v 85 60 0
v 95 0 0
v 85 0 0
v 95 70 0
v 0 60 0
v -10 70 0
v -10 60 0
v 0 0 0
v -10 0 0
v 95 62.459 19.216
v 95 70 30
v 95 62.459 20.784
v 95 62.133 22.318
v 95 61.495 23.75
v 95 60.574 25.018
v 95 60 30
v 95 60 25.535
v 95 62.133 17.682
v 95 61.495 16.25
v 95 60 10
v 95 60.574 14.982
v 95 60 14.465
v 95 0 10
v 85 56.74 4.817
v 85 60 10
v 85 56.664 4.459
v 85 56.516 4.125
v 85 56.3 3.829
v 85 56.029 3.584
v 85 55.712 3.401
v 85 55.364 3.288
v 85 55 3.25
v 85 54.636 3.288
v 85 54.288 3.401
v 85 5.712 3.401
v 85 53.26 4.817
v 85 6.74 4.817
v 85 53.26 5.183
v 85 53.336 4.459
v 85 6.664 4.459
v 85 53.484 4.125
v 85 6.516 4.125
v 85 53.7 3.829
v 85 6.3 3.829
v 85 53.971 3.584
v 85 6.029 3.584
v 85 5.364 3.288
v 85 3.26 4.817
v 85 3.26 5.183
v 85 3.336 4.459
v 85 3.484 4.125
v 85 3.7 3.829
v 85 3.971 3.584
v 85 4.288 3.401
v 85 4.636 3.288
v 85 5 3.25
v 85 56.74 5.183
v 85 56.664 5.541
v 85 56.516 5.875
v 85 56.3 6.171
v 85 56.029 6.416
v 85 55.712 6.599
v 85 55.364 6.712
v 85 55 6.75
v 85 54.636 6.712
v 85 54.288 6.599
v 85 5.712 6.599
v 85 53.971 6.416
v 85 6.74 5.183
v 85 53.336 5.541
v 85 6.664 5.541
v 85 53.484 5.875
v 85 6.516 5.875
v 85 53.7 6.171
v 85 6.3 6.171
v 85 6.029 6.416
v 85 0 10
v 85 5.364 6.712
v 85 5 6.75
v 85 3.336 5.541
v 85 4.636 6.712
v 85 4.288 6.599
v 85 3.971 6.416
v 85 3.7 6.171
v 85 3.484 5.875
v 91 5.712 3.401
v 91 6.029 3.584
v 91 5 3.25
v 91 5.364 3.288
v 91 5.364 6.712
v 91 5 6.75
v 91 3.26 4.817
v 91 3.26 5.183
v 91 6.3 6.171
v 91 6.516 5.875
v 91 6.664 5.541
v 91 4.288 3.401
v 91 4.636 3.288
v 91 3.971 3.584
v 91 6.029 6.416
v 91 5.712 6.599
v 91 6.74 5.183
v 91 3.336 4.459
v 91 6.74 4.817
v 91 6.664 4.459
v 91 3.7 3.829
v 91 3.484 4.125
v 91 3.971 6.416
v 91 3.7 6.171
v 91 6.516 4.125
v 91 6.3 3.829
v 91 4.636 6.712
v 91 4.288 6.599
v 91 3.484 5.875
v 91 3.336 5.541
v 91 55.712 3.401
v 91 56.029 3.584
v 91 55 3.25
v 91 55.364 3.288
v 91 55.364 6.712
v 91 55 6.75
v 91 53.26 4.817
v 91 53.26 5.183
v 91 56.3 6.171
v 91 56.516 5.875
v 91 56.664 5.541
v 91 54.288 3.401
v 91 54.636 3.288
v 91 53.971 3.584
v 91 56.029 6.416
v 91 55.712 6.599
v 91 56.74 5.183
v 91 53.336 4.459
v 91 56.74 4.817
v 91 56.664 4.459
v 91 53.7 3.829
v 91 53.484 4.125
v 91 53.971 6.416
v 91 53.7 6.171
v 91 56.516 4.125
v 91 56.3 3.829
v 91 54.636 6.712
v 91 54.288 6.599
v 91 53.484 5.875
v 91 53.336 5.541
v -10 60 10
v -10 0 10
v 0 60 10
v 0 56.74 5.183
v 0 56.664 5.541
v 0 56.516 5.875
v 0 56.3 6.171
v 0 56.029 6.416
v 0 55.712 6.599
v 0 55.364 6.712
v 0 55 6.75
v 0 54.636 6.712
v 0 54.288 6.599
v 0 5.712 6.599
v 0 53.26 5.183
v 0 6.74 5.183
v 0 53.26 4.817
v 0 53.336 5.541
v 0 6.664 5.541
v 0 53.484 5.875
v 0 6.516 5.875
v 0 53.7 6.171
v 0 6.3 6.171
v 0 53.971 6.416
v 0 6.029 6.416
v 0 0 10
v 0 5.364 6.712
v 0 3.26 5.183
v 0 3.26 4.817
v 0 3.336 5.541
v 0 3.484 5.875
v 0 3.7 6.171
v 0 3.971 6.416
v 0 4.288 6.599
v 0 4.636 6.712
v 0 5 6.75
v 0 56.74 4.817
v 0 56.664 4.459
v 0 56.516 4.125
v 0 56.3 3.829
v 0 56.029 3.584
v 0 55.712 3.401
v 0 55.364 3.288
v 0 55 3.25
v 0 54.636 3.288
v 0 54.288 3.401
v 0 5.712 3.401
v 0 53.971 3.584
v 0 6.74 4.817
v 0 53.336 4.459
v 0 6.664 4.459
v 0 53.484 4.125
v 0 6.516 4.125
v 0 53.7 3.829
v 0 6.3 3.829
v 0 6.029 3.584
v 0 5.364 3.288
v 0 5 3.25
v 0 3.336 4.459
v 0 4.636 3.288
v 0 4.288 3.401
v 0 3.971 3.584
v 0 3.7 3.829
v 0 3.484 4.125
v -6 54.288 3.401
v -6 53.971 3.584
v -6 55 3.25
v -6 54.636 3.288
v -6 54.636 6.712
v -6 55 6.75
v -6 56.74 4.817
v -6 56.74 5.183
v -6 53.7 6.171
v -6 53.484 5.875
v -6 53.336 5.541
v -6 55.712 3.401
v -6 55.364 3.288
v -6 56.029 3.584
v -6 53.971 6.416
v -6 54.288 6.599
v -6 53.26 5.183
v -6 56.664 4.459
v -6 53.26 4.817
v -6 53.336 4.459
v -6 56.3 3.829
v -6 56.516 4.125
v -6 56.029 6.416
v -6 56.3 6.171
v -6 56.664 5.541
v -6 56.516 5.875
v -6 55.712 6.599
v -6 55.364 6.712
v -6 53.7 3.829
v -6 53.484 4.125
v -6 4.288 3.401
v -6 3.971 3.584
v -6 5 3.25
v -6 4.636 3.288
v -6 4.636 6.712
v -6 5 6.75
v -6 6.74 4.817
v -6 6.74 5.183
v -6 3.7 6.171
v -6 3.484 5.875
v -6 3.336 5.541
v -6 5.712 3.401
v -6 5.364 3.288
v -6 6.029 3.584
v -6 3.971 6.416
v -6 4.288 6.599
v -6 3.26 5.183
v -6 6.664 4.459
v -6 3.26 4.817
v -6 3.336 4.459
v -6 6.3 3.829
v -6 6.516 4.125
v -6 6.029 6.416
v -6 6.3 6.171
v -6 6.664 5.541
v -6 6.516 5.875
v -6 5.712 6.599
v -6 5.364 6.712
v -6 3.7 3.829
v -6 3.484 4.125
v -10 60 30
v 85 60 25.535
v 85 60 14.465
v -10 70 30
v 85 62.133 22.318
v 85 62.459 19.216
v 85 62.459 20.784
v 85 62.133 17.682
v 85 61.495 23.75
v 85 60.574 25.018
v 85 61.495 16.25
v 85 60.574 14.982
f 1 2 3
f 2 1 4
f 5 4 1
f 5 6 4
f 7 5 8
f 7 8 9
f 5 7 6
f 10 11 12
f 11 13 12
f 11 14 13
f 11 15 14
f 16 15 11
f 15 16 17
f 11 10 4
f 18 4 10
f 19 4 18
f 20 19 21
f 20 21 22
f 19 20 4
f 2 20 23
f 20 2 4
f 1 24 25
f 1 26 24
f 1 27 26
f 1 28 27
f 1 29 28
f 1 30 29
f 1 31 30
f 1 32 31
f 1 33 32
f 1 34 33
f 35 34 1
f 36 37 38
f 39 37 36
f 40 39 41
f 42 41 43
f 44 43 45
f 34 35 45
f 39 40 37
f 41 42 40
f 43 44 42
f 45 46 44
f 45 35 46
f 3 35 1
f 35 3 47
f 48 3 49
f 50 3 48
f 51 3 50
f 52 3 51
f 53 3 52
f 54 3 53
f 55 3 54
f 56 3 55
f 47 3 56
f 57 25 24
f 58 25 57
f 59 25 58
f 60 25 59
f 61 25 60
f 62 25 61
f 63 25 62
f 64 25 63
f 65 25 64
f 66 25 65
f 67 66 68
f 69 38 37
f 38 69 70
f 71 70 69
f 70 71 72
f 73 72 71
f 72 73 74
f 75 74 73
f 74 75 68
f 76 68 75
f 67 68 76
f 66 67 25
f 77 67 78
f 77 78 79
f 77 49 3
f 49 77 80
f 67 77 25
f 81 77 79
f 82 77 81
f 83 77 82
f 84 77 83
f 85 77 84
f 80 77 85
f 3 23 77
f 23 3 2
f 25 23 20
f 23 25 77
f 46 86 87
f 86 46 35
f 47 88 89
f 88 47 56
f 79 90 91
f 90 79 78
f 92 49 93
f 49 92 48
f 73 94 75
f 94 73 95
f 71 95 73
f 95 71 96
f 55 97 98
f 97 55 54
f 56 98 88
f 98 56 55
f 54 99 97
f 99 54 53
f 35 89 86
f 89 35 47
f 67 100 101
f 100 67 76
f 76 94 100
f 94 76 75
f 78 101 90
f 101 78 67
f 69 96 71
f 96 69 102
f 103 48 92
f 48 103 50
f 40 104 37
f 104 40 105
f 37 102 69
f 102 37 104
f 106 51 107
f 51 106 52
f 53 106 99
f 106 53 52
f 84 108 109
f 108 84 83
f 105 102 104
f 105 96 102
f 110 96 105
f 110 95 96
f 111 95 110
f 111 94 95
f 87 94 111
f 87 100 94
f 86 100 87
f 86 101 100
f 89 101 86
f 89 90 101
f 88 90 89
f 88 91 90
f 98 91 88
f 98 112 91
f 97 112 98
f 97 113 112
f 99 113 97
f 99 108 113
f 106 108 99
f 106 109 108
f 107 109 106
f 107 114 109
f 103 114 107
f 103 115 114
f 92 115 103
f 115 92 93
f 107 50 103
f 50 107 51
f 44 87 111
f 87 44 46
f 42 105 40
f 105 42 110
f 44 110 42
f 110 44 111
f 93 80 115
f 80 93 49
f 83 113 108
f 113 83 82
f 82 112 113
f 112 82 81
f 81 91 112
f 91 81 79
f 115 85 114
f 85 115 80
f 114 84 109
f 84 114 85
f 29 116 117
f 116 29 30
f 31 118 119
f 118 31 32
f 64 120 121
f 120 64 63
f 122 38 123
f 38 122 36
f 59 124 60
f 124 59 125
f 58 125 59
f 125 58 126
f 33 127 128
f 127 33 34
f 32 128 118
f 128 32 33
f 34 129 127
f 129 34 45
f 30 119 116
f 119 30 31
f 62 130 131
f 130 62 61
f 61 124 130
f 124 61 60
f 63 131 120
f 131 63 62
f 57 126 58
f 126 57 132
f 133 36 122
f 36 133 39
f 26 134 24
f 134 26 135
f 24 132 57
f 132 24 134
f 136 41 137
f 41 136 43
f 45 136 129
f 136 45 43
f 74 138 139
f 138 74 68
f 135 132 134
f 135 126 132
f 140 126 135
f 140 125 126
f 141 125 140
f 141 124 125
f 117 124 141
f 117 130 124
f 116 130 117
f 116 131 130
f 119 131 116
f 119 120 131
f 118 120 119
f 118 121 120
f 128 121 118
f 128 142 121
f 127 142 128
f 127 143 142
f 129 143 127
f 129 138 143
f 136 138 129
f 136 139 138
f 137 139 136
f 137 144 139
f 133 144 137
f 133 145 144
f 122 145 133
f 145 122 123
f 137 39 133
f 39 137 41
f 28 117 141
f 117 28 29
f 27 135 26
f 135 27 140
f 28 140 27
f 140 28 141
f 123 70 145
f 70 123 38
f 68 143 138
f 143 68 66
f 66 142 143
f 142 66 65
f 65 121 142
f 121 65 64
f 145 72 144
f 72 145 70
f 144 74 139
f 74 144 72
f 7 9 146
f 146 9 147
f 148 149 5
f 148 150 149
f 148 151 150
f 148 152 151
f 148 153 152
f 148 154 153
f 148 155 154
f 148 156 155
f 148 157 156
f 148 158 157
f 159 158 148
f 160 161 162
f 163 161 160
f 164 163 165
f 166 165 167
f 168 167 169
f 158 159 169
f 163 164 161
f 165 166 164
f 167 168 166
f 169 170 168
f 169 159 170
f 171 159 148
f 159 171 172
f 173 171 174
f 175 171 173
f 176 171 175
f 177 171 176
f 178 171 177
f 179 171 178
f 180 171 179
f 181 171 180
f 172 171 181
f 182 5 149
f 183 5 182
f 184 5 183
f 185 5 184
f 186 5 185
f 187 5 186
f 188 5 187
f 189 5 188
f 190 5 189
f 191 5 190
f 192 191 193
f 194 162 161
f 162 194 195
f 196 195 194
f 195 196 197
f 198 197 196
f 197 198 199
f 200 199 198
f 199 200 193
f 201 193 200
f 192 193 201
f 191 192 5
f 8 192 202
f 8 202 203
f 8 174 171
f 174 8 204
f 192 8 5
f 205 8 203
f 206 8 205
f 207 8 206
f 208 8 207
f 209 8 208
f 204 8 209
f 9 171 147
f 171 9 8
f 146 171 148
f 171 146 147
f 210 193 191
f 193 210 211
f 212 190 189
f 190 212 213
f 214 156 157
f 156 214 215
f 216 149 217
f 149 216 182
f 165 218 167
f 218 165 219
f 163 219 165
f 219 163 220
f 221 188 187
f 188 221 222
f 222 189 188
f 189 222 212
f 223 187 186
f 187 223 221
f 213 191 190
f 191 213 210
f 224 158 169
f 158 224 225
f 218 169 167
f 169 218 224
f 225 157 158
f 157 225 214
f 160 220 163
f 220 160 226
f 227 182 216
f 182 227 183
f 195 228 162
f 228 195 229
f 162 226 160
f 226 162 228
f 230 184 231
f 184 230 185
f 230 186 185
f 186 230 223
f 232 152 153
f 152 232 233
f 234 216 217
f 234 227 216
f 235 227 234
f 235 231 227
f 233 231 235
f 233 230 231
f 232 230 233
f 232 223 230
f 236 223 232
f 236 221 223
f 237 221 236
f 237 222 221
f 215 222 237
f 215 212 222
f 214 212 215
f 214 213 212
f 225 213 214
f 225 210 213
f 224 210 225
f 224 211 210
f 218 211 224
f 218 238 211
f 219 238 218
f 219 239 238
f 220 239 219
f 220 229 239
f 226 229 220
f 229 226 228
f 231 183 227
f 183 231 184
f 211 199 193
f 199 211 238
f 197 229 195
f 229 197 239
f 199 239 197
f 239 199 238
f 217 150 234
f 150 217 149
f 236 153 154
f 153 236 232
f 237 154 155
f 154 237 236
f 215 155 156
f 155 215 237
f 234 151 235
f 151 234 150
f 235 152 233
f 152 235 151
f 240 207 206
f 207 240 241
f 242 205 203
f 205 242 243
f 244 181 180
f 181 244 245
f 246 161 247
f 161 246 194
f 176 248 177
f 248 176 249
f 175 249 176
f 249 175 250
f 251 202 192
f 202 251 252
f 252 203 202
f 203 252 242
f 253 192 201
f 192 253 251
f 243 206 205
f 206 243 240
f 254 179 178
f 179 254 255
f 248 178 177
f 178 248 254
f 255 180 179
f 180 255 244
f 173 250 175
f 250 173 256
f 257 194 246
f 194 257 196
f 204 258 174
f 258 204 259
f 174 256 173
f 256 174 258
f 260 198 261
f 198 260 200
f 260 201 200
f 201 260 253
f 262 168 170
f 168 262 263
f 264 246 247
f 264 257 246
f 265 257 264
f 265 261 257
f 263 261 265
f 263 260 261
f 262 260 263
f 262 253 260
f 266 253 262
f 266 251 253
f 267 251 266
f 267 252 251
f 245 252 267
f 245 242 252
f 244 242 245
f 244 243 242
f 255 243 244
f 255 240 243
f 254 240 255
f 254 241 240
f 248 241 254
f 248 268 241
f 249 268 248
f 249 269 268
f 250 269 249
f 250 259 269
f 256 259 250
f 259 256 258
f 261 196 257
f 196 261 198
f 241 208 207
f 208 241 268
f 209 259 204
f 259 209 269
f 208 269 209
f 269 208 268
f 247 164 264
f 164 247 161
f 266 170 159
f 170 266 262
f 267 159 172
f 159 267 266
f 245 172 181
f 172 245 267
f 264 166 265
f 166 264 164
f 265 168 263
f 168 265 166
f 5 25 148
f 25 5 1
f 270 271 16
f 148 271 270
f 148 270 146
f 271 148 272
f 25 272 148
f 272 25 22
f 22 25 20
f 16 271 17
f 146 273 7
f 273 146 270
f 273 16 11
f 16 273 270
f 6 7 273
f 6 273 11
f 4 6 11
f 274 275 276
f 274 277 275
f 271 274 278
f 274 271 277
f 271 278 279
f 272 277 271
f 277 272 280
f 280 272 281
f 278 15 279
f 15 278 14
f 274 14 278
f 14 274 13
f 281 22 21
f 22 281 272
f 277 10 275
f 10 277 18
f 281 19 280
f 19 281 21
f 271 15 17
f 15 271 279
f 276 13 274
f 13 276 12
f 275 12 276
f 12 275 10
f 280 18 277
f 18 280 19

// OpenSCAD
$fs=0.1;
boxLength = 10;
boxWidth = 60;

boxHeight = 85;

sideHeight = 20;
spaceLength = 16;

shaftHolder();

module shaftHolder() {
    union() {
        translate([boxHeight,0,0]) {
            makesHoles();
        }
        mirror([0,0,0]) {
            translate([0,boxWidth,0])
            rotate([0,0,180]) {
                makesHoles();
            }
        }
        
        difference() {
            translate([-10,boxWidth,0]) {
                rotate([90,0,90])
                cube([10,30,boxHeight+20]);
            }
            translate([boxHeight,boxWidth-5,20]) {
                rotate([0,90,0]) {
                    #cylinder(d=15,h=11);
                }
            }
        }
        
        //mirroredCubes();
    }
}

module mirroredCubes(cubeHeight) {
    translate([boxHeight,boxWidth,0]) {
        cube([10,spaceLength,10]);
    }
    
    translate([-10,boxWidth,0]) {
        cube([10,spaceLength,10]);
    }
}

module makesHoles() {
    union() {
        difference() {
            squareBox(boxLength,boxWidth);
            tube(5,5);
            tube(5,boxWidth-5);
        }
    }
}

module squareBox(length,width) {
    linear_extrude(height=10,convexity=8){
        square([length,width]);
    }
}

module tube(height,location) {
    translate([-1,location,height]) {
        rotate([0,90,0]) {
            #cylinder(d=3.5,h=7); 
        }
    }
}
